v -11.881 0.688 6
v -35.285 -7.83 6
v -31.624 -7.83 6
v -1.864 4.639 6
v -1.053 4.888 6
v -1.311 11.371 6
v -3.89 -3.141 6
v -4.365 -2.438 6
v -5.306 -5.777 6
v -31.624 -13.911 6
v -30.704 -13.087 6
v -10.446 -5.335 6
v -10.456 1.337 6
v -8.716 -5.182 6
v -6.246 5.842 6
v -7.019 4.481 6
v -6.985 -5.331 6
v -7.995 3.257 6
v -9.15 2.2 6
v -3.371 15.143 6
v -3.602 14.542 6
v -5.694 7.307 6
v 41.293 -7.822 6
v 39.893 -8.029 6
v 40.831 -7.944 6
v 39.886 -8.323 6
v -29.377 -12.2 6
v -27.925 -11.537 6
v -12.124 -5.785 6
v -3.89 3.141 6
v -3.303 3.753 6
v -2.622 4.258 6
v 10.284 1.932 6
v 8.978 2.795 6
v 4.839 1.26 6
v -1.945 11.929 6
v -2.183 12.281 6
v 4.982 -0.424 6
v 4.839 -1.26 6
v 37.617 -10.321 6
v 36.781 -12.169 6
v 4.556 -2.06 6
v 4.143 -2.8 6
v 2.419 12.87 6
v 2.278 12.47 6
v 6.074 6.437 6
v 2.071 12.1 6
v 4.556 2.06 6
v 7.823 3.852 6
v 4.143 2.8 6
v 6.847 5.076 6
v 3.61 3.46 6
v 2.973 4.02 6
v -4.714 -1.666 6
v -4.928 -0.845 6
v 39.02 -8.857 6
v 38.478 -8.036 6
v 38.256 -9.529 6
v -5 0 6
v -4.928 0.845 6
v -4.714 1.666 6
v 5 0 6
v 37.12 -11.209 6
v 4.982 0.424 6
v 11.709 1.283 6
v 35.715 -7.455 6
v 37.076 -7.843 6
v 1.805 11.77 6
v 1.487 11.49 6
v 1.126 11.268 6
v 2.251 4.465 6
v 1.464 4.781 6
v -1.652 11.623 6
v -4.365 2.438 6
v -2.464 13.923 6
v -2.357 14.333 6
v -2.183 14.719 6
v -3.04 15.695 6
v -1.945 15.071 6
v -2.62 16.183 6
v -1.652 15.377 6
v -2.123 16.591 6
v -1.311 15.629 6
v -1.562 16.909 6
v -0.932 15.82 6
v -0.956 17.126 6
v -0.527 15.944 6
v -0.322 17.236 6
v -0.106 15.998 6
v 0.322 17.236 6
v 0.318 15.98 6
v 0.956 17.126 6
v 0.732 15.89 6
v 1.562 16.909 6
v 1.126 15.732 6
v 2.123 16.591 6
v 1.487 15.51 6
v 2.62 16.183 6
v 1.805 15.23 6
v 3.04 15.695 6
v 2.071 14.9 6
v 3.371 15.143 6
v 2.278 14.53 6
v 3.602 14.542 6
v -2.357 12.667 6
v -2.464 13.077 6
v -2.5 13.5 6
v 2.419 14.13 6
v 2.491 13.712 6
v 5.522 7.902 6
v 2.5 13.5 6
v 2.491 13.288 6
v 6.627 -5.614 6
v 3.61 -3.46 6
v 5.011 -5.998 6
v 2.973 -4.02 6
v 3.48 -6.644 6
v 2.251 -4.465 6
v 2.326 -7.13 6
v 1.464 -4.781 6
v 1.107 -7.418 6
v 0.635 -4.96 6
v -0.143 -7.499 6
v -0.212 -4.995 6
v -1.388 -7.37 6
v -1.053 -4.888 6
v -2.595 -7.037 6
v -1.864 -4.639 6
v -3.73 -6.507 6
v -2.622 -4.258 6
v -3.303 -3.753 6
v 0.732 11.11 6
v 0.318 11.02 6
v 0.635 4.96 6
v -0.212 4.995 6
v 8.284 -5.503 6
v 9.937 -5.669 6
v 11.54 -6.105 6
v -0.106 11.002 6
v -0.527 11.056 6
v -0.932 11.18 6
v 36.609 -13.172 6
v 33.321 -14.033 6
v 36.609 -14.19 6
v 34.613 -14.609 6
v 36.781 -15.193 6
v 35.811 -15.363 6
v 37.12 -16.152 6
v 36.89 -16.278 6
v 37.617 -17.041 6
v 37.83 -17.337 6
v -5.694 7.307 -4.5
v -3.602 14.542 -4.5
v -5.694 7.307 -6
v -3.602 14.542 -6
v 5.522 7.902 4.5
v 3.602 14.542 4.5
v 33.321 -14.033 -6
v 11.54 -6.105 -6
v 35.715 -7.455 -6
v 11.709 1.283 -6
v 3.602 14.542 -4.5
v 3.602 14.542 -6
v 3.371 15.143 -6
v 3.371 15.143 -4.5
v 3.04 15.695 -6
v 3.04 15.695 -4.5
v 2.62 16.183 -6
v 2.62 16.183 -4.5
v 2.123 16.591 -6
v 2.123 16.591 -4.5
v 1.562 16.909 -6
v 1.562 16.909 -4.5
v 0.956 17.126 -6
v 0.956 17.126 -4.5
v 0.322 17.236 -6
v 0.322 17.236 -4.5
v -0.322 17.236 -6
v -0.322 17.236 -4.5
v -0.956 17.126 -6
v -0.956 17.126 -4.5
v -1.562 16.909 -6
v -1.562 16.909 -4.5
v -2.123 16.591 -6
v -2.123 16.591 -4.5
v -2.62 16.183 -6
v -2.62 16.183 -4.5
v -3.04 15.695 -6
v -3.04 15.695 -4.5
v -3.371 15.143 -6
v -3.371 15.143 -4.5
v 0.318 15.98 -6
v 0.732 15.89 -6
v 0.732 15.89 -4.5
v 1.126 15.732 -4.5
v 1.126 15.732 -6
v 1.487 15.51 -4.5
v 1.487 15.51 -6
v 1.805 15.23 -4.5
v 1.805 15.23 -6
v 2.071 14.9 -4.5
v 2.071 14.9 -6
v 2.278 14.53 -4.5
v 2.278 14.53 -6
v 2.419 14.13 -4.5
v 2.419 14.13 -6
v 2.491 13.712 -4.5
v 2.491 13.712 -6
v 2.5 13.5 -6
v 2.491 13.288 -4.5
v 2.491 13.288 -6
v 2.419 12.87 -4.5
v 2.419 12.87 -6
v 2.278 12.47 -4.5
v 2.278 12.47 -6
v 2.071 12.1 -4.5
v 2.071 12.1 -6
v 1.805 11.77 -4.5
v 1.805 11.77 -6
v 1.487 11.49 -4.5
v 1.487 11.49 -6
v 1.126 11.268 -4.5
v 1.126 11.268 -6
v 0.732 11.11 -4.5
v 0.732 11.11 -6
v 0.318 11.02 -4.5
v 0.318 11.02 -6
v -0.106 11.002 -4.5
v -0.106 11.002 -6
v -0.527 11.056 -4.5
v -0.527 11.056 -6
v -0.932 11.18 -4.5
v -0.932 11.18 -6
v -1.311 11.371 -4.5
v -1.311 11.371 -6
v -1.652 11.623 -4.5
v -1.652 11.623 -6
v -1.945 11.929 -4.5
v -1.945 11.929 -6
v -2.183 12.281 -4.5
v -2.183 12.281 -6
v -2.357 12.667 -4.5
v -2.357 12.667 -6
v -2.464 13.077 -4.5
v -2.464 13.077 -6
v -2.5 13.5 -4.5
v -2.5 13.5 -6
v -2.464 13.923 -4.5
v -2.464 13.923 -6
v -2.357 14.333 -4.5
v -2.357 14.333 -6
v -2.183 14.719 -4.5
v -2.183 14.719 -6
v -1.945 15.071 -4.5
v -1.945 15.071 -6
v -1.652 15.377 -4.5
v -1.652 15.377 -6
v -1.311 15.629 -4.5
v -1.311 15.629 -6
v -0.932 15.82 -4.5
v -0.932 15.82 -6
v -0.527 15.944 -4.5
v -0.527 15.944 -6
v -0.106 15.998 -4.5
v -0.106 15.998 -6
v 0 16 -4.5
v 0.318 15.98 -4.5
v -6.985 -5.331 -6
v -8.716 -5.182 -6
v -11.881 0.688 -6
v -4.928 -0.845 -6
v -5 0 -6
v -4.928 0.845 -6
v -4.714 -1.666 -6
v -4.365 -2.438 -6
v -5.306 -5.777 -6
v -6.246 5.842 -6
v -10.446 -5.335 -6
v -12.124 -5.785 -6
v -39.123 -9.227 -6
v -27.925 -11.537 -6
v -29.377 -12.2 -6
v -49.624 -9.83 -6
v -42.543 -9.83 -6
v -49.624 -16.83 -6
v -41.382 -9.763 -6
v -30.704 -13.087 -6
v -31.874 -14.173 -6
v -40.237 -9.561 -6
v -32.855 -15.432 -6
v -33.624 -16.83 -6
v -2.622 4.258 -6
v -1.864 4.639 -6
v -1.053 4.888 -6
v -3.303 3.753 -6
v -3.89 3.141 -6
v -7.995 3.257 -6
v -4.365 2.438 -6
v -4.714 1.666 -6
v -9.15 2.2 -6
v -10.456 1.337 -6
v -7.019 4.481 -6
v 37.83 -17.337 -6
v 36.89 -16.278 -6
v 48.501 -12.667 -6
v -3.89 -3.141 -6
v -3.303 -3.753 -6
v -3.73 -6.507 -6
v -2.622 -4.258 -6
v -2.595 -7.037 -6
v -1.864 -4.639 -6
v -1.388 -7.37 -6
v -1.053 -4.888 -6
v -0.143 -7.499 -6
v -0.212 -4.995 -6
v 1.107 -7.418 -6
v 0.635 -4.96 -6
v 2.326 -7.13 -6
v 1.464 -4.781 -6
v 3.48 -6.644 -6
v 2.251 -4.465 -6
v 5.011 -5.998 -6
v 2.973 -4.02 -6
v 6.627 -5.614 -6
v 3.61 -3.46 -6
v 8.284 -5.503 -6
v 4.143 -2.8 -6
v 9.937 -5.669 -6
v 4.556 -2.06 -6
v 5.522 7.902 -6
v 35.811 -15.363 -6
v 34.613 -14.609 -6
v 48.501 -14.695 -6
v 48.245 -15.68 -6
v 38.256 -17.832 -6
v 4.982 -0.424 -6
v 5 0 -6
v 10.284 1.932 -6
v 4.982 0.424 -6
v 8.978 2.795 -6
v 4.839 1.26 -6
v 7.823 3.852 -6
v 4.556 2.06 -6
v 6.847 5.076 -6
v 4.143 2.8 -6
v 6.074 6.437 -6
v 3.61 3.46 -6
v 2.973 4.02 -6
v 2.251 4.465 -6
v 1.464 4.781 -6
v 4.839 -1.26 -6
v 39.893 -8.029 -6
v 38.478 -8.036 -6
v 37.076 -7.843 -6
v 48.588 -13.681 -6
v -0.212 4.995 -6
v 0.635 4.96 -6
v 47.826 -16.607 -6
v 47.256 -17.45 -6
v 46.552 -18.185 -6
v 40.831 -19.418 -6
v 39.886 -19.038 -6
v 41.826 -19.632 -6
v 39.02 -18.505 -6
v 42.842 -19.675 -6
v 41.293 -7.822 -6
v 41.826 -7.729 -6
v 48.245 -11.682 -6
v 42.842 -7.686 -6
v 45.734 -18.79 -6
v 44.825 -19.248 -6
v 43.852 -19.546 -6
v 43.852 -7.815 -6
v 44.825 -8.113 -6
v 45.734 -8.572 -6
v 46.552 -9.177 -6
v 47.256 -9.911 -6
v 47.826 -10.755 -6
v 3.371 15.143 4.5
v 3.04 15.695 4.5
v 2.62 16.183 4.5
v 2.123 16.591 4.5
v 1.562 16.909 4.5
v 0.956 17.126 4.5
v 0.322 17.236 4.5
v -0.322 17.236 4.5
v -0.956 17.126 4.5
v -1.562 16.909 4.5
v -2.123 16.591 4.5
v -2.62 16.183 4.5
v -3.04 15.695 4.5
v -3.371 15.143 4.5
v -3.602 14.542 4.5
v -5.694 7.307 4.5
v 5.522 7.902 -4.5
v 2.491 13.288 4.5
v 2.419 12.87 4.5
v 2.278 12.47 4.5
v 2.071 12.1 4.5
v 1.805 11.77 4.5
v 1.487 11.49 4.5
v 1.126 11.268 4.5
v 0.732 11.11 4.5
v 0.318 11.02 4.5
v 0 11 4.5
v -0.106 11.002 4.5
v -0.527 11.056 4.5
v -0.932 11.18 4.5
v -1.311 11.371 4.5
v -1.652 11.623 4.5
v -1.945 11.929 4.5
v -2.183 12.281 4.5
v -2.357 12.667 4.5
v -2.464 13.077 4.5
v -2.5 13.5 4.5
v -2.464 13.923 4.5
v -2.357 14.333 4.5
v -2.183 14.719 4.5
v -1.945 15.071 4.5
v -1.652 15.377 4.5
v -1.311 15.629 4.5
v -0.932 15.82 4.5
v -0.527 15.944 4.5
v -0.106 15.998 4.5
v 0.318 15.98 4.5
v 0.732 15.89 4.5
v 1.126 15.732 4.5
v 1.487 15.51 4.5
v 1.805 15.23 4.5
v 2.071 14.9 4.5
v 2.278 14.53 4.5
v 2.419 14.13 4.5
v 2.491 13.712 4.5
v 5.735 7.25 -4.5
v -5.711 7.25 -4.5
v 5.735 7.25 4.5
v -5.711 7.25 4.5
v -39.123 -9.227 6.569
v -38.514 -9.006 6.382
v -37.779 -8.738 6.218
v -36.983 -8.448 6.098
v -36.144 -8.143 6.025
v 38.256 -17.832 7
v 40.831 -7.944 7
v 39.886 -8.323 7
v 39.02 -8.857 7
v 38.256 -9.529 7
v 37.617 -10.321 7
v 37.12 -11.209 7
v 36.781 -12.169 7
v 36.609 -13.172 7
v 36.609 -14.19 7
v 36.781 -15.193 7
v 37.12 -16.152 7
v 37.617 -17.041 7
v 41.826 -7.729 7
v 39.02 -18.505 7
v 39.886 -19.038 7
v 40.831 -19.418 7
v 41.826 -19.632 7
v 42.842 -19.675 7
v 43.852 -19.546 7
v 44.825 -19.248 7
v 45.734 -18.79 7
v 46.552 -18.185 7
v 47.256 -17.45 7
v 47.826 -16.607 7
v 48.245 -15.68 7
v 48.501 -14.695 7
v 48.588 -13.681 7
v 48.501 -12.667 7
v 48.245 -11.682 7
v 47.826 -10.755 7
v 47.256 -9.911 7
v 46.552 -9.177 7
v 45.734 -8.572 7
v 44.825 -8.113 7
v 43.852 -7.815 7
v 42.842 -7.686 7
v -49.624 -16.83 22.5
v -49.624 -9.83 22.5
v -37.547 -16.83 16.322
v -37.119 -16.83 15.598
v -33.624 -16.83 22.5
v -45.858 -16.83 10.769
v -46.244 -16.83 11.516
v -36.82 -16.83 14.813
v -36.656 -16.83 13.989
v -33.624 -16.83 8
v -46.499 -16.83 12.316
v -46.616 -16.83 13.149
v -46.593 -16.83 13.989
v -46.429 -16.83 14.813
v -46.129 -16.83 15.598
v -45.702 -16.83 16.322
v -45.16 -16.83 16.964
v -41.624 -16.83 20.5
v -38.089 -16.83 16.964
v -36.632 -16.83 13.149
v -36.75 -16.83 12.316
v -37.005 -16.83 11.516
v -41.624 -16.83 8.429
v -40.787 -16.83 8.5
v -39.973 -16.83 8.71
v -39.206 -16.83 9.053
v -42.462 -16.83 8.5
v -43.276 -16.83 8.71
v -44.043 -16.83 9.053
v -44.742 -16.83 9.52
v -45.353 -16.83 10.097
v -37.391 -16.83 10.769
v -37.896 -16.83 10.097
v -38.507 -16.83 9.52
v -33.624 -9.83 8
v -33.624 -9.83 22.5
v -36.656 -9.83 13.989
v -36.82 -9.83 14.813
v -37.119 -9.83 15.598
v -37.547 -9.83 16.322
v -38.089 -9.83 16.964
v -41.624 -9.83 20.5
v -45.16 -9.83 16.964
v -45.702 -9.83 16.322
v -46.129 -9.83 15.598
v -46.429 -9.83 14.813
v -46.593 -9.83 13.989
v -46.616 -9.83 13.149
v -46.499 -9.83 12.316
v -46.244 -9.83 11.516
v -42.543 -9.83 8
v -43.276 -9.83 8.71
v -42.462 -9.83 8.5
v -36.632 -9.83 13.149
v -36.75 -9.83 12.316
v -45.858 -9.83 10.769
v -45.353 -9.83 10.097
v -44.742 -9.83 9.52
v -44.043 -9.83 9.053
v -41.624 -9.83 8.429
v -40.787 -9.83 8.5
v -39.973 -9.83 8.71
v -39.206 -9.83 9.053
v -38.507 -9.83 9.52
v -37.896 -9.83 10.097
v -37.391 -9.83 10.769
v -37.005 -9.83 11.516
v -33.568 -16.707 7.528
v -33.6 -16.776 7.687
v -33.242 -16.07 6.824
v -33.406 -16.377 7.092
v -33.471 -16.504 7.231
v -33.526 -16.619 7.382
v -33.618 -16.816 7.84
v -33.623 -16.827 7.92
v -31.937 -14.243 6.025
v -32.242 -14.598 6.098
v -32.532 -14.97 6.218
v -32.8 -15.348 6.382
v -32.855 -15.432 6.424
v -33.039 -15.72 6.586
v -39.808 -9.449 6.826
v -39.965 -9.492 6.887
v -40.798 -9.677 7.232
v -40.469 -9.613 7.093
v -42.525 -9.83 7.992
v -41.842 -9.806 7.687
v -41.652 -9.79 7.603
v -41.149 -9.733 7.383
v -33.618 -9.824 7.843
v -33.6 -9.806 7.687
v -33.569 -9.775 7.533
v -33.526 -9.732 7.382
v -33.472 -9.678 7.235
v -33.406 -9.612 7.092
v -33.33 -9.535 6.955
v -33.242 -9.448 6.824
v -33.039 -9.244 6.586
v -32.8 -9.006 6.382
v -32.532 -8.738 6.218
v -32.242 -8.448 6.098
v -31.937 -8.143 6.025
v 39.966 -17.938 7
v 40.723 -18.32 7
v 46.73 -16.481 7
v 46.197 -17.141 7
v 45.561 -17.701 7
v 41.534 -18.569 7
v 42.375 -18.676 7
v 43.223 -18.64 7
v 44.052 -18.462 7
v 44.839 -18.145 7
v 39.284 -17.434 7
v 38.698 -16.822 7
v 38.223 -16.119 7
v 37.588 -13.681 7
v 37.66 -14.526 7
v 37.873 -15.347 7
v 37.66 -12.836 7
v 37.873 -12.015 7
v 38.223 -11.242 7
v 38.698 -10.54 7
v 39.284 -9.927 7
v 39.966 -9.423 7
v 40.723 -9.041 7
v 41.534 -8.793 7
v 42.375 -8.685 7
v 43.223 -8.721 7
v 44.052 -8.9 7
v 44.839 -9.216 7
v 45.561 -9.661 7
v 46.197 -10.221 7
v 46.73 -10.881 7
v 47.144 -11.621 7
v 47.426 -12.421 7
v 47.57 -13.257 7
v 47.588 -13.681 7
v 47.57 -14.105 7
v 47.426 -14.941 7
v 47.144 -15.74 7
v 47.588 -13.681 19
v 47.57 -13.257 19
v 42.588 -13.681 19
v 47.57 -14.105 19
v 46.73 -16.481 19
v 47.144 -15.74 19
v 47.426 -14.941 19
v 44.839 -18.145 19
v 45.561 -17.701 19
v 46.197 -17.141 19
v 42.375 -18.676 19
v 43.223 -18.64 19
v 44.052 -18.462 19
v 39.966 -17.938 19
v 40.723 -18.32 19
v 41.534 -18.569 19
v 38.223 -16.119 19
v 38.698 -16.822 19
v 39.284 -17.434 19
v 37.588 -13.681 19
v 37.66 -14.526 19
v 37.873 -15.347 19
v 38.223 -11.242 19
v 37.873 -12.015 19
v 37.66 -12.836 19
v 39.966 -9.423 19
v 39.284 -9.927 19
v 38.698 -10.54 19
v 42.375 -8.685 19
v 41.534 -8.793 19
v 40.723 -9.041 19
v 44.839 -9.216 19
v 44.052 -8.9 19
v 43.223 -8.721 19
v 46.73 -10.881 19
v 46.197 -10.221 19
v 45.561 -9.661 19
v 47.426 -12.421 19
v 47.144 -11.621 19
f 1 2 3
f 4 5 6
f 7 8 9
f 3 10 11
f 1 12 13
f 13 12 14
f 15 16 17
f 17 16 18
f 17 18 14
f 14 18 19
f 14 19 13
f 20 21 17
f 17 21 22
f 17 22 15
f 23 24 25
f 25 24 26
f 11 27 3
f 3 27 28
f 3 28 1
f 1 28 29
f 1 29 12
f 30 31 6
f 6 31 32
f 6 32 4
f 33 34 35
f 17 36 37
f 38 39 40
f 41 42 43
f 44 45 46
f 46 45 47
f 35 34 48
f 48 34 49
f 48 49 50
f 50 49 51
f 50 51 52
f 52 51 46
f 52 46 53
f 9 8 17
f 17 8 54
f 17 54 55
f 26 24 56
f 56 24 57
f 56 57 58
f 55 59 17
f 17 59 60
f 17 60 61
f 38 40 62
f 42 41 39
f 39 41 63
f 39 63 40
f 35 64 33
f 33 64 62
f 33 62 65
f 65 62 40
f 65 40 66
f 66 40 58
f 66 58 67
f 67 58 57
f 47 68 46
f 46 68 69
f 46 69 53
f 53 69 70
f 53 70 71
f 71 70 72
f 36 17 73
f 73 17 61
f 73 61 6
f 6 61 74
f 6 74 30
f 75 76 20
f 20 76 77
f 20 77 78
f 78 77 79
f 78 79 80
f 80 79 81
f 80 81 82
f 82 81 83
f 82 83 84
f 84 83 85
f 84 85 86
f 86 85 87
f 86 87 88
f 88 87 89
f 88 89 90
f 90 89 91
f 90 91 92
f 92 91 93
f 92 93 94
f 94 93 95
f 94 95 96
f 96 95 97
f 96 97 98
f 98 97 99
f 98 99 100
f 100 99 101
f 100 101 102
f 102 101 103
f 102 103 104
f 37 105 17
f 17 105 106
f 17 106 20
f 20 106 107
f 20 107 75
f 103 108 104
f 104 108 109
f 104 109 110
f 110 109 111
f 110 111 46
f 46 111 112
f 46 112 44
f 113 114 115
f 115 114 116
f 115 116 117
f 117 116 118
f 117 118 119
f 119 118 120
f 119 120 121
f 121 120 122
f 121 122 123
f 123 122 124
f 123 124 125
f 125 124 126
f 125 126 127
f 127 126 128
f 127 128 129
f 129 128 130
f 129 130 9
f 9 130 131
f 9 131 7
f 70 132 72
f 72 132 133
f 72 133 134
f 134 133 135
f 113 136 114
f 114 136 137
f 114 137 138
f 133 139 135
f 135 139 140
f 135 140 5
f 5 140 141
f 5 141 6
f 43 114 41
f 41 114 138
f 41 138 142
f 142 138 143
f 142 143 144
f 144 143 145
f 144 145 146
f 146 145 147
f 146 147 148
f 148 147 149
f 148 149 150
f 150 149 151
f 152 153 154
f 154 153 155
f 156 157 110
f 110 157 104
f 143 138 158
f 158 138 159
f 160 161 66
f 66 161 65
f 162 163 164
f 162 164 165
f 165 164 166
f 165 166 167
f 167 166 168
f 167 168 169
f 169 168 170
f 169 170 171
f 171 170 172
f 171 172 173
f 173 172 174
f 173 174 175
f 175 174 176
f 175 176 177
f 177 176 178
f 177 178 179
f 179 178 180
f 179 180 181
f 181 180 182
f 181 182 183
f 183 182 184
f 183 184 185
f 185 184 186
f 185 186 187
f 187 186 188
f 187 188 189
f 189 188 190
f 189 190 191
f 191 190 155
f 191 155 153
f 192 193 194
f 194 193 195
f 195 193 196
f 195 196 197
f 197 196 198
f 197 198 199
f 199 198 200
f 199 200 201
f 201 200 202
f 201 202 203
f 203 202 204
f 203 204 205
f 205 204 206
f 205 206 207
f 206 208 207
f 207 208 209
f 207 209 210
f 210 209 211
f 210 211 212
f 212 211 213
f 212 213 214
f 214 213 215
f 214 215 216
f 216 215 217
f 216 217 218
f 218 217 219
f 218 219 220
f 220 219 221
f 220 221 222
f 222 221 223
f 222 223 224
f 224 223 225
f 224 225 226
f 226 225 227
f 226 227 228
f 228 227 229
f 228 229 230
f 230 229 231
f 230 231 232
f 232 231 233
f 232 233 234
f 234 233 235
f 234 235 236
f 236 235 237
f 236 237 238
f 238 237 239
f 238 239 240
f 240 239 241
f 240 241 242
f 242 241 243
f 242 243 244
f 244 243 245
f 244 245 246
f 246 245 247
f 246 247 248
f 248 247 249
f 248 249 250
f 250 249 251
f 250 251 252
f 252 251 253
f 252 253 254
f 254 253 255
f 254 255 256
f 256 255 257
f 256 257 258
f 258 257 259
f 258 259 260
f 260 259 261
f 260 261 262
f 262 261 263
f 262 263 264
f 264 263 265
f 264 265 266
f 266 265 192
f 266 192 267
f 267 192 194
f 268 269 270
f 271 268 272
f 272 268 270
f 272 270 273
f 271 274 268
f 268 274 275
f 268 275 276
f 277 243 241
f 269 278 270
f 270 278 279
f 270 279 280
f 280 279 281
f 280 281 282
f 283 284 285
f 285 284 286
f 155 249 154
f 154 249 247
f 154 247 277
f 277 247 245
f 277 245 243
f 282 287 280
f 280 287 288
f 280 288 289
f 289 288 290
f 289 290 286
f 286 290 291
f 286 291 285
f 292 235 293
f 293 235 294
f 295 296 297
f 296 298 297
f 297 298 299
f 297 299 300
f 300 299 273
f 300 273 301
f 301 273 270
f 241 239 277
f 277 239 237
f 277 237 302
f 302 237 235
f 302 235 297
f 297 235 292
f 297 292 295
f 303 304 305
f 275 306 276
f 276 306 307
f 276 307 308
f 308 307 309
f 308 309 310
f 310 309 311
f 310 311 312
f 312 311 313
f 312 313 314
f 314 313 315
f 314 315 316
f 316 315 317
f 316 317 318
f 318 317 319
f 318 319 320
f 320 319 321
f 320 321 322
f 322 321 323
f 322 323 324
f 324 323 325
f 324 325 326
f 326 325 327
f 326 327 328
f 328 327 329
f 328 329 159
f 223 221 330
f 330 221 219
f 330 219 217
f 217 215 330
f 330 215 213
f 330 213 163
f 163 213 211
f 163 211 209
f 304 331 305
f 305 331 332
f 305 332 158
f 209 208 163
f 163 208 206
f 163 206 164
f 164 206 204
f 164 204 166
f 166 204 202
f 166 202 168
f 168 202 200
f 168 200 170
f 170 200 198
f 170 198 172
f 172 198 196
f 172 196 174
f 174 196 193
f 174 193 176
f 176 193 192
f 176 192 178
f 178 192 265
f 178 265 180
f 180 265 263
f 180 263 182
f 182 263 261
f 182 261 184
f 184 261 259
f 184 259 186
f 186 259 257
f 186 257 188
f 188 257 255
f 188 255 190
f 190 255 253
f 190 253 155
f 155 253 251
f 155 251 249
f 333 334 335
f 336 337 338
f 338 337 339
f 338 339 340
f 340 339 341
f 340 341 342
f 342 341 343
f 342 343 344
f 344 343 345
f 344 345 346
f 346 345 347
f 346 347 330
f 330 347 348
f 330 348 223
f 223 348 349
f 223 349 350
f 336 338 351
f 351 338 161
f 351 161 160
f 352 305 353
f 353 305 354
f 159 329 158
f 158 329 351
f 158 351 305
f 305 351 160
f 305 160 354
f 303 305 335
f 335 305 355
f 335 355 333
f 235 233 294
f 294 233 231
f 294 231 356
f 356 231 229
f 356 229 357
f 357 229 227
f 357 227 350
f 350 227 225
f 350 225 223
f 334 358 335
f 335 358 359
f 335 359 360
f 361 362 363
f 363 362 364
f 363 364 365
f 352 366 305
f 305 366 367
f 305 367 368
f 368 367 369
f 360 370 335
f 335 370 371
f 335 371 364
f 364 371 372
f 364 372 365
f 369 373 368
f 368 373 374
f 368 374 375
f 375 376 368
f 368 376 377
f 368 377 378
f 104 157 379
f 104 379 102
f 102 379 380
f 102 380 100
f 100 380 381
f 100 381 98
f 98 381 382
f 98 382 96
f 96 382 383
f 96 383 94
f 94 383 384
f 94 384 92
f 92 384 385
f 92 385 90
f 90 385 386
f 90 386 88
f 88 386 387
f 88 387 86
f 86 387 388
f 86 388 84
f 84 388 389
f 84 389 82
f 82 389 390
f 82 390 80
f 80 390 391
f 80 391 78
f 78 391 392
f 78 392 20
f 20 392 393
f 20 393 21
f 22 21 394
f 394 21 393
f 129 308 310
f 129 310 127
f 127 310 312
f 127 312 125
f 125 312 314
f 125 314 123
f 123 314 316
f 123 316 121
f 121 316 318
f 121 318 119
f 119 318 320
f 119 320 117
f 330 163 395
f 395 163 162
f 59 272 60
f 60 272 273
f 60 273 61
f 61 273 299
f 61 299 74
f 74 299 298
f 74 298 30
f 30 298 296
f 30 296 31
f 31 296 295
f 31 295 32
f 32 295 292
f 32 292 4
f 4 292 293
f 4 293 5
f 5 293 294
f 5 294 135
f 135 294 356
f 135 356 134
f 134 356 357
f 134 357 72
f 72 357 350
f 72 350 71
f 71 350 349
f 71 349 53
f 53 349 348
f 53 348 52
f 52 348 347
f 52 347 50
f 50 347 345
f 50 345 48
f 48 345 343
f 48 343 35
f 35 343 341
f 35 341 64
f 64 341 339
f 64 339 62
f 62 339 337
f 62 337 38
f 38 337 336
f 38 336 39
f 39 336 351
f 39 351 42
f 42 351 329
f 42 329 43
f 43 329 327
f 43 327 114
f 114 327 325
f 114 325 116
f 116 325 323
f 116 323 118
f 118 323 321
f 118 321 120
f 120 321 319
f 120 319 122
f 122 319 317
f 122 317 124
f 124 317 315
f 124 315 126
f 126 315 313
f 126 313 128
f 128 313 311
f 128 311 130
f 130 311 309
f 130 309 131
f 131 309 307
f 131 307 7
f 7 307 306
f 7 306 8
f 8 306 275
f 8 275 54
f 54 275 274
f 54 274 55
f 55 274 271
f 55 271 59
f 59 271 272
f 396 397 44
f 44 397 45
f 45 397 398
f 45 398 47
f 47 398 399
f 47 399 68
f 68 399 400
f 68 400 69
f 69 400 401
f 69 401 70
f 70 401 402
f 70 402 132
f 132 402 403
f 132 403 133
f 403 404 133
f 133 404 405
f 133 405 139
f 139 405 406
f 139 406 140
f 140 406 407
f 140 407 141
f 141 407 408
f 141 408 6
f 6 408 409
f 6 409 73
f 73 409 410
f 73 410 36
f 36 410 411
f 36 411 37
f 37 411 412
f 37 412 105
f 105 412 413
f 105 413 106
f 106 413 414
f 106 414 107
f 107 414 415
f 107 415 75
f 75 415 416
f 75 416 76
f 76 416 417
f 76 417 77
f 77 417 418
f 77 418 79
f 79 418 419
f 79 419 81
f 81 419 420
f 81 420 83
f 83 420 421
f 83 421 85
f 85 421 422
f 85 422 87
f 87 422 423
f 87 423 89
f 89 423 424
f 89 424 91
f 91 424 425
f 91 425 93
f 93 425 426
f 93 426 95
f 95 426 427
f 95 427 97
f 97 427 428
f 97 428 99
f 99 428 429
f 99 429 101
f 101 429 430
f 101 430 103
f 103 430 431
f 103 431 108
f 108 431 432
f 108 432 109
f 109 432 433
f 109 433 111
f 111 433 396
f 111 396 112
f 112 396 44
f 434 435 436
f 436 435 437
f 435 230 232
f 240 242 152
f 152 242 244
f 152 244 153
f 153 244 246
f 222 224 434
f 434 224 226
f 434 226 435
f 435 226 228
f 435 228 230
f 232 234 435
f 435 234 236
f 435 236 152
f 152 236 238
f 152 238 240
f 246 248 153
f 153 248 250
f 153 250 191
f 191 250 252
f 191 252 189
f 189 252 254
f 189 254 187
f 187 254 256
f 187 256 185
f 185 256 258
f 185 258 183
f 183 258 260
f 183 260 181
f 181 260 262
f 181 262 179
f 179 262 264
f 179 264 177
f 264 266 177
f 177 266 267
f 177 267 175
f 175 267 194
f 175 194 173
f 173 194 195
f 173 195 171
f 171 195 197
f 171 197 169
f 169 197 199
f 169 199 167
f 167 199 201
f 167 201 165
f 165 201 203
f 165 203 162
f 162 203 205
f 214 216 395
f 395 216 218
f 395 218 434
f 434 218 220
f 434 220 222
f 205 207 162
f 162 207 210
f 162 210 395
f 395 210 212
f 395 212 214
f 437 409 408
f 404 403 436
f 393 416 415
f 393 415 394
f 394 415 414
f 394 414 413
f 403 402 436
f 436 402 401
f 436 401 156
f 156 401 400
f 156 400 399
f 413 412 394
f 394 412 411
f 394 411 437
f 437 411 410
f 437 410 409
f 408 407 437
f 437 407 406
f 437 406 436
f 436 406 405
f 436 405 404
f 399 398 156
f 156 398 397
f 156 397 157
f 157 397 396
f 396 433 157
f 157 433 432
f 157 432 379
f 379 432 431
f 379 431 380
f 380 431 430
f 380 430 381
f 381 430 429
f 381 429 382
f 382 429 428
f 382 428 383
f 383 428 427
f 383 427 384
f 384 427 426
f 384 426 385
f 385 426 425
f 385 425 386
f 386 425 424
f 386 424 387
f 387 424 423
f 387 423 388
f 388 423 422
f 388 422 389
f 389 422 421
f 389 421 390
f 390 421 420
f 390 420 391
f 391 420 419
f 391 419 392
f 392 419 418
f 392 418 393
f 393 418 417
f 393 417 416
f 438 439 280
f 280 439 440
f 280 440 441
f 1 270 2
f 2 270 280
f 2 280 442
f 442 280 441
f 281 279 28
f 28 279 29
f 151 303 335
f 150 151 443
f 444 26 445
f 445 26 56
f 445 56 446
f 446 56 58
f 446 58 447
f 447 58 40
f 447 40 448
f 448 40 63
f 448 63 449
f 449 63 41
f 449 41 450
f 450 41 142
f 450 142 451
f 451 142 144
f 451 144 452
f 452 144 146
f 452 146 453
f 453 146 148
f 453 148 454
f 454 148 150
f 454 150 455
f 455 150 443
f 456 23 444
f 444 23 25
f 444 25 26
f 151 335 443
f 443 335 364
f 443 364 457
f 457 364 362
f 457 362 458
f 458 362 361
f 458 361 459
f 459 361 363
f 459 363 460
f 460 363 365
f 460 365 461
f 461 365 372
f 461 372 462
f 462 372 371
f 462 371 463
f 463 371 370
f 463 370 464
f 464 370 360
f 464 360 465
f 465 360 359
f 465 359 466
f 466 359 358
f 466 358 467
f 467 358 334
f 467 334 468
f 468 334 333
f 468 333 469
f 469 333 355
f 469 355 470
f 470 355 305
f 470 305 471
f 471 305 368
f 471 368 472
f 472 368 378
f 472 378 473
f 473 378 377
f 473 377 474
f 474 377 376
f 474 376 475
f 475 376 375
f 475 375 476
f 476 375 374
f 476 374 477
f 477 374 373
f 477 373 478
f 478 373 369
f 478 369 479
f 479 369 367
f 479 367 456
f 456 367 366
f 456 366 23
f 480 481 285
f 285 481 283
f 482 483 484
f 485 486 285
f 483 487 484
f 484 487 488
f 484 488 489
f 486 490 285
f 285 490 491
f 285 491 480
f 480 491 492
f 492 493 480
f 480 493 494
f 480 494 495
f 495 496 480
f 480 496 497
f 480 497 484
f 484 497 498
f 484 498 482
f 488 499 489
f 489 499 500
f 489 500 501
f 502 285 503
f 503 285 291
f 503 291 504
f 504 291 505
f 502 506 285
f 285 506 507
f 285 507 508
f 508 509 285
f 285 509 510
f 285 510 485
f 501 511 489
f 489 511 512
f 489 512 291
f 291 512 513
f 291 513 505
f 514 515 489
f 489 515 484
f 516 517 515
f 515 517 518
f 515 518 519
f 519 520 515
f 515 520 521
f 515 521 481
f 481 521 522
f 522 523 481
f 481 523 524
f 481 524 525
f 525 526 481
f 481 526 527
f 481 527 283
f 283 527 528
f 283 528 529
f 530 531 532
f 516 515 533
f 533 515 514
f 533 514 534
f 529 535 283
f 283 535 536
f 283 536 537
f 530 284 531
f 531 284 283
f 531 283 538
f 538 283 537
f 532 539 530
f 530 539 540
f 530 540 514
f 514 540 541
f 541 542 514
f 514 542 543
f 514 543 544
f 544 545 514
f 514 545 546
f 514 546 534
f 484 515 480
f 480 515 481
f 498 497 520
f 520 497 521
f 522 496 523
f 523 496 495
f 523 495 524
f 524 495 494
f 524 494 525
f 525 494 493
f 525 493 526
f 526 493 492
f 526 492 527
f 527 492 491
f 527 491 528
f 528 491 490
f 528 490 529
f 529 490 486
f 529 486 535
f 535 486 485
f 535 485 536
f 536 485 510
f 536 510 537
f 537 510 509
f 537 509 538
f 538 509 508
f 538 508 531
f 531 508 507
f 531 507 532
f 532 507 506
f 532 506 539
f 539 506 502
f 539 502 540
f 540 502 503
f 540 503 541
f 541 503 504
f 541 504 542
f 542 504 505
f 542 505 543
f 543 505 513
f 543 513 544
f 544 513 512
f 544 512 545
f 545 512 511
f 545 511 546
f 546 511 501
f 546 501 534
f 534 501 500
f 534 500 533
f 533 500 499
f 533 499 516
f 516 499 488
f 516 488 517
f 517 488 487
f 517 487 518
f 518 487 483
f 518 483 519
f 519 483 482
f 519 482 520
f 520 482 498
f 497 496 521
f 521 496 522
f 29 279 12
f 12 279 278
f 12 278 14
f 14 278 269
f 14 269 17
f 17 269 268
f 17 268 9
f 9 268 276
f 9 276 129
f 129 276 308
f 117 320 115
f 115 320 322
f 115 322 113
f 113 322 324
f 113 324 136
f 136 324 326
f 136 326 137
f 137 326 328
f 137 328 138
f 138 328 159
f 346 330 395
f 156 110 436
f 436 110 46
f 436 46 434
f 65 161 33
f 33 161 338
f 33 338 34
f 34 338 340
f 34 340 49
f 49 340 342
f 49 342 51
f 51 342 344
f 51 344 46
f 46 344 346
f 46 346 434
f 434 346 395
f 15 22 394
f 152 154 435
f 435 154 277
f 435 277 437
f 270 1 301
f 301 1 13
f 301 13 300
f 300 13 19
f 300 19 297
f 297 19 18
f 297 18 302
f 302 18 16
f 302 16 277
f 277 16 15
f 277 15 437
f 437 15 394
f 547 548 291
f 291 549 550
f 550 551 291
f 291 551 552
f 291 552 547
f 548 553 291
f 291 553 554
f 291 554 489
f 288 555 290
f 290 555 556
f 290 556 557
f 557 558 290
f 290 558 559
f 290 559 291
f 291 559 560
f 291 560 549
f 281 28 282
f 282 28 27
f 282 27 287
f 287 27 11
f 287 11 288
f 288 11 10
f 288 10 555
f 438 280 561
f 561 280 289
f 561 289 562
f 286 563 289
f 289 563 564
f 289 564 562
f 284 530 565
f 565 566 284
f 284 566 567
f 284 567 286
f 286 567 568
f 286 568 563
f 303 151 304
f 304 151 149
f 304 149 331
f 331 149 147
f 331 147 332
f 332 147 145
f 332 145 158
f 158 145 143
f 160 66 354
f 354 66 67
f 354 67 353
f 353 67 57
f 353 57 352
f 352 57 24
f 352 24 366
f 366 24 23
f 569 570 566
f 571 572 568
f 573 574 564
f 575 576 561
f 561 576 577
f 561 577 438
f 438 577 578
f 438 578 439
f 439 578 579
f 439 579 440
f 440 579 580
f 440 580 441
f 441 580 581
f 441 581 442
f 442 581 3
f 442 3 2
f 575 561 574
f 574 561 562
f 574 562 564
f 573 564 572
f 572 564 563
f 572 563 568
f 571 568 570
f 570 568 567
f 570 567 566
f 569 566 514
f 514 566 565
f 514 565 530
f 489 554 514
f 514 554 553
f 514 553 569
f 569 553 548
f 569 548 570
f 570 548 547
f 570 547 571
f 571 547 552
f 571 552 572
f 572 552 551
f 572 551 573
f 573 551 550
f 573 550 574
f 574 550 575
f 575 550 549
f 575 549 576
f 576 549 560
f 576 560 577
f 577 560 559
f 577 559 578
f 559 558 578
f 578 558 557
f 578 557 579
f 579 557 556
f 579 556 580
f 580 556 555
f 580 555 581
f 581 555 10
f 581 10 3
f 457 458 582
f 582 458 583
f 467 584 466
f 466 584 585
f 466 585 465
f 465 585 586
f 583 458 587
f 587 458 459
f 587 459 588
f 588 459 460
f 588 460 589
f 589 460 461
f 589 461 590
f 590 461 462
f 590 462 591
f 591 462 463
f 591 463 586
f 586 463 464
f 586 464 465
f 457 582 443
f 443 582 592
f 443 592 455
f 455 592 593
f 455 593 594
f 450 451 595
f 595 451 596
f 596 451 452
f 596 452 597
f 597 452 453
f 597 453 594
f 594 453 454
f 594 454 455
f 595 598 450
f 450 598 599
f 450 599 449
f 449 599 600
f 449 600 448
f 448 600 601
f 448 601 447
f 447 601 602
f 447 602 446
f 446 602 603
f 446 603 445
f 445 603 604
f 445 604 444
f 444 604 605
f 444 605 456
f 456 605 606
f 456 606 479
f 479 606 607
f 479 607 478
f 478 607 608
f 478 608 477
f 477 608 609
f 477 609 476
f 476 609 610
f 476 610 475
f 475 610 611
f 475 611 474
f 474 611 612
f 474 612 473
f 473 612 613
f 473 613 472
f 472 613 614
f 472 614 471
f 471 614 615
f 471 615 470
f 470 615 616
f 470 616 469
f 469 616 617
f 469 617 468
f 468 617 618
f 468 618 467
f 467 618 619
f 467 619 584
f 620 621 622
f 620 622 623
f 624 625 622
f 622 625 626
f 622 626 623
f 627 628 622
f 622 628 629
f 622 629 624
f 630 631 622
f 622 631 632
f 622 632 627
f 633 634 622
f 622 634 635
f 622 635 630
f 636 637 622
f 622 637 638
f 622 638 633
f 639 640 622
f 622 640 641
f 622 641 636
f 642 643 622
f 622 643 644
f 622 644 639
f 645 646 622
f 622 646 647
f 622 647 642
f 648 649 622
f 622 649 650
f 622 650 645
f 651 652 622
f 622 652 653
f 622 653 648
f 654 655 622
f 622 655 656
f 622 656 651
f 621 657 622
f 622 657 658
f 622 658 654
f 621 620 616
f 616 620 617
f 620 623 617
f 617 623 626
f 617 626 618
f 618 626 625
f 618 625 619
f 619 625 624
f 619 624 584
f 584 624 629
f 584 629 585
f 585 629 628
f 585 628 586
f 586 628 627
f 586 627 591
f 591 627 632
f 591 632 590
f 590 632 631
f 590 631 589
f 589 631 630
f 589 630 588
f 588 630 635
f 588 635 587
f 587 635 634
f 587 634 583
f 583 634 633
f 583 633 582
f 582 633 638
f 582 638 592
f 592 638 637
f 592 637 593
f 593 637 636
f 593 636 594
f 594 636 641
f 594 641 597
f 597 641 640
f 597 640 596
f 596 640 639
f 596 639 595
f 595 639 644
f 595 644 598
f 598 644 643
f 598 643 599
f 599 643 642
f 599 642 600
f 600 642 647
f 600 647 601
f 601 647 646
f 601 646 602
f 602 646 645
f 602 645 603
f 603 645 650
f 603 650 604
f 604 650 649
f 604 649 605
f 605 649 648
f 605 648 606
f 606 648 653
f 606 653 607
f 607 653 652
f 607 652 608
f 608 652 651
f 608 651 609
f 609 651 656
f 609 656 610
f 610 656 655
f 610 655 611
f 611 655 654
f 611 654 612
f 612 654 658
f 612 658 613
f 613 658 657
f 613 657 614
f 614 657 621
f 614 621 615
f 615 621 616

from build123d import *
from build123d.topology import SkipClean

# Parameters (mm, degrees)
CROQUIS1_R                 = 5
CROQUIS1_R_2               = 2.5
SALIENTE_EXTRUIR1_DEPTH    = 6
CORTAR_EXTRUIR1_DEPTH      = 20.743669872
CORTAR_EXTRUIR1_DEPTH_BACK = 20.743669872
CROQUIS3_W                 = 9
CROQUIS3_H                 = 14.204802578
CROQUIS4_W                 = 12
CROQUIS4_H                 = 6
SALIENTE_EXTRUIR2_DEPTH    = 38
CROQUIS8_W                 = 12
CROQUIS8_H                 = 7
SALIENTE_EXTRUIR5_DEPTH    = 39.5
CROQUIS9_R                 = 5
SALIENTE_EXTRUIR6_DEPTH    = 19
CROQUIS11_R                = 6
SALIENTE_EXTRUIR7_DEPTH    = 6
CROQUIS22_W                = 16
CROQUIS22_H                = 7
SALIENTE_EXTRUIR12_DEPTH   = 28.5
CORTAR_EXTRUIR3_DEPTH      = 17
REDONDEO1_R                = 10
REDONDEO2_R                = 10
REDONDEO3_R                = 2
CROQUIS25_R                = 6
SALIENTE_EXTRUIR13_DEPTH   = 1


with BuildPart() as part:
    # Croquis1 → Saliente-Extruir1 (new, symmetric)
    with BuildSketch(Plane.XY):
        with BuildLine():
            Line((-3.602420097, 14.541666667), (-7.204840194, 2.083333333))
            ThreePointArc((-7.204840194, 2.083333333), (0, -7.5), (7.204840194, 2.083333333))
            Line((7.204840194, 2.083333333), (3.602420097, 14.541666667))
            ThreePointArc((3.602420097, 14.541666667), (0, 17.25), (-3.602420097, 14.541666667))
        make_face()
        Circle(CROQUIS1_R, mode=Mode.SUBTRACT)
        with Locations((0, 13.5)):
            Circle(CROQUIS1_R_2, mode=Mode.SUBTRACT)
    extrude(amount=SALIENTE_EXTRUIR1_DEPTH, both=True)

    # Croquis3 → Cortar-Extruir1 (cut, two sides: drawn at the far end of the back side and taken through both)
    with BuildSketch(Plane(origin=(0, 0, 0), x_dir=(0, 0, -1), z_dir=(1, 0, 0)).offset(-CORTAR_EXTRUIR1_DEPTH_BACK)):
        with Locations((0, 14.352401289)):
            Rectangle(CROQUIS3_W, CROQUIS3_H)
    extrude(amount=CORTAR_EXTRUIR1_DEPTH + CORTAR_EXTRUIR1_DEPTH_BACK, mode=Mode.SUBTRACT)

    # Croquis4 → Saliente-Extruir2 (add)
    with BuildSketch(Plane(origin=(-41.624334392, -13.330167568, 0), x_dir=(0, 0, 1), z_dir=(-0.9396926207859082, -0.3420201433256695, 0))):
        Rectangle(CROQUIS4_W, CROQUIS4_H)
    extrude(amount=-SALIENTE_EXTRUIR2_DEPTH)

    # Croquis8 → Saliente-Extruir5 (add)
    with BuildSketch(Plane(origin=(42.587704831, -13.680805733, 0), x_dir=(0, 0, -1), z_dir=(0.9396926207859082, -0.34202014332566943, 0))):
        Rectangle(CROQUIS8_W, CROQUIS8_H)
    extrude(amount=-SALIENTE_EXTRUIR5_DEPTH)

    # Croquis9 → Saliente-Extruir6 (add)
    with BuildSketch(Plane.XY):
        with Locations(Location((42.587704831, -13.680805733, 0), (0, 0, 204.427004001))):
            Circle(CROQUIS9_R)
    extrude(amount=SALIENTE_EXTRUIR6_DEPTH)

    # Croquis11 → Saliente-Extruir7 (add, symmetric)
    with BuildSketch(Plane(origin=(0, 0, 0), x_dir=(-1, 0, 0), z_dir=(0, 0, -1))):
        with Locations((-42.587704831, -13.680805733)):
            Circle(CROQUIS11_R)
    extrude(amount=SALIENTE_EXTRUIR7_DEPTH, both=True)

    # Croquis22 → Saliente-Extruir12 (add)
    with BuildSketch(Plane(origin=(0, 0, -6), x_dir=(-1, 0, 0), z_dir=(0, 0, -1))):
        with Locations((41.624334392, -13.330167568)):
            Rectangle(CROQUIS22_W, CROQUIS22_H)
    extrude(amount=-SALIENTE_EXTRUIR12_DEPTH)

    # Croquis24 → Cortar-Extruir3 (cut)
    with BuildSketch(Plane.XZ.offset(16.830167568)):
        with BuildLine():
            Line((-41.624334392, 20.5), (-45.159868298, 16.964466094))
            ThreePointArc((-45.159868298, 16.964466094), (-41.624334392, 8.428932188), (-38.088800486, 16.964466094))
            Line((-38.088800486, 16.964466094), (-41.624334392, 20.5))
        make_face()
    extrude(amount=-CORTAR_EXTRUIR3_DEPTH, mode=Mode.SUBTRACT)

    # Redondeo1
    # the kernel refuses this fillet: 10 mm, written as the material it adds along each edge
    with BuildSketch(Plane(origin=(-6.501507493, -3.739037351, -6), x_dir=(-0.9396926207859082, -0.34202014332566955, 0), z_dir=(0, 0, 1))) as redondeo1_piece_1:
        with BuildLine():
            CenterArc((5.982924808, 10), REDONDEO1_R, 220.175955677, 49.824044323)
            ThreePointArc((-1.657743486, 3.548628981), (-0.593131346, 1.884440714), (0, 0))
            Line((0, 0), (5.982924808, 0))
        make_face()
    extrude(amount=12)
    with BuildSketch(Plane(origin=(6.231868861, -4.172985802, -6), x_dir=(-0.7440842561226181, -0.668085787747689, 0), z_dir=(0, 0, 1))) as redondeo1_piece_2:
        with BuildLine():
            CenterArc((6.16374333, 9.691301404), REDONDEO1_R, 208.080503653, 47.646059692)
            Line((-2.659127557, 4.984184526), (0, 0))
            ThreePointArc((0, 0), (1.849122999, 0.231523947), (3.698245998, 0))
        make_face()
    extrude(amount=12)
    with BuildSketch(Plane(origin=(6.933768131, 3.020788164, 6), x_dir=(0.9396926207859081, -0.34202014332566955, 0), z_dir=(0, 0, -1))) as redondeo1_piece_3_section:
        with BuildLine():
            CenterArc((REDONDEO1_R * 0.508123414429, -REDONDEO1_R), REDONDEO1_R, 90, 53.872379787)
            Line((-REDONDEO1_R * 0.299582345445, -REDONDEO1_R * 0.410414208562), (0, 0))
            Line((0, 0), (REDONDEO1_R * 0.508123414429, 0))
        make_face()
    redondeo1_piece_3 = extrude(amount=12, mode=Mode.PRIVATE)
    redondeo1_piece_3 = split(redondeo1_piece_3, bisect_by=Plane(origin=(7.707131888, 3.605094571, 4.5), z_dir=(0, 0, 1)), keep=Keep.TOP, mode=Mode.PRIVATE)
    redondeo1_piece_3 = split(redondeo1_piece_3, bisect_by=Plane(origin=(7.707131888, 7.25, 5.25), z_dir=(0, -1, 0)), keep=Keep.TOP, mode=Mode.PRIVATE)
    add(redondeo1_piece_3)
    with BuildSketch(Plane(origin=(6.933768131, 3.020788164, 6), x_dir=(0.9396926207859081, -0.34202014332566955, 0), z_dir=(0, 0, -1))) as redondeo1_piece_4_section:
        with BuildLine():
            CenterArc((REDONDEO1_R * 0.508123414429, -REDONDEO1_R), REDONDEO1_R, 90, 53.872379787)
            Line((-REDONDEO1_R * 0.299582345445, -REDONDEO1_R * 0.410414208562), (0, 0))
            Line((0, 0), (REDONDEO1_R * 0.508123414429, 0))
        make_face()
    redondeo1_piece_4 = extrude(amount=12, mode=Mode.PRIVATE)
    redondeo1_piece_4 = split(redondeo1_piece_4, bisect_by=Plane(origin=(5.523987689, 7.556477911, 4.5), z_dir=(0, 0, 1)), keep=Keep.TOP, mode=Mode.PRIVATE)
    redondeo1_piece_4 = split(redondeo1_piece_4, bisect_by=Plane(origin=(5.523987689, 7.25, 5.25), z_dir=(0, 1, 0)), keep=Keep.TOP, mode=Mode.PRIVATE)
    add(redondeo1_piece_4)
    with BuildSketch(Plane(origin=(6.933768131, 3.020788164, 6), x_dir=(0.9396926207859081, -0.34202014332566955, 0), z_dir=(0, 0, -1))) as redondeo1_piece_5_section:
        with BuildLine():
            CenterArc((REDONDEO1_R * 0.508123414429, -REDONDEO1_R), REDONDEO1_R, 90, 53.872379787)
            Line((-REDONDEO1_R * 0.299582345445, -REDONDEO1_R * 0.410414208562), (0, 0))
            Line((0, 0), (REDONDEO1_R * 0.508123414429, 0))
        make_face()
    redondeo1_piece_5 = extrude(amount=12, mode=Mode.PRIVATE)
    redondeo1_piece_5 = split(redondeo1_piece_5, bisect_by=Plane(origin=(7.707131888, 3.605094571, 4.5), z_dir=(0, 0, -1)), keep=Keep.TOP, mode=Mode.PRIVATE)
    redondeo1_piece_5 = split(redondeo1_piece_5, bisect_by=Plane(origin=(7.707131888, 7.25, 0), z_dir=(0, -1, 0)), keep=Keep.TOP, mode=Mode.PRIVATE)
    redondeo1_piece_5 = split(redondeo1_piece_5, bisect_by=Plane(origin=(7.707131888, 3.605094571, -4.5), z_dir=(0, 0, 1)), keep=Keep.TOP, mode=Mode.PRIVATE)
    add(redondeo1_piece_5)
    with BuildSketch(Plane(origin=(6.933768131, 3.020788164, 6), x_dir=(0.9396926207859081, -0.34202014332566955, 0), z_dir=(0, 0, -1))) as redondeo1_piece_6_section:
        with BuildLine():
            CenterArc((REDONDEO1_R * 0.508123414429, -REDONDEO1_R), REDONDEO1_R, 90, 53.872379787)
            Line((-REDONDEO1_R * 0.299582345445, -REDONDEO1_R * 0.410414208562), (0, 0))
            Line((0, 0), (REDONDEO1_R * 0.508123414429, 0))
        make_face()
    redondeo1_piece_6 = extrude(amount=12, mode=Mode.PRIVATE)
    redondeo1_piece_6 = split(redondeo1_piece_6, bisect_by=Plane(origin=(7.707131888, 7.25, -5.25), z_dir=(0, -1, 0)), keep=Keep.TOP, mode=Mode.PRIVATE)
    redondeo1_piece_6 = split(redondeo1_piece_6, bisect_by=Plane(origin=(7.707131888, 3.605094571, -4.5), z_dir=(0, 0, -1)), keep=Keep.TOP, mode=Mode.PRIVATE)
    add(redondeo1_piece_6)
    with BuildSketch(Plane(origin=(6.933768131, 3.020788164, 6), x_dir=(0.9396926207859081, -0.34202014332566955, 0), z_dir=(0, 0, -1))) as redondeo1_piece_7_section:
        with BuildLine():
            CenterArc((REDONDEO1_R * 0.508123414429, -REDONDEO1_R), REDONDEO1_R, 90, 53.872379787)
            Line((-REDONDEO1_R * 0.299582345445, -REDONDEO1_R * 0.410414208562), (0, 0))
            Line((0, 0), (REDONDEO1_R * 0.508123414429, 0))
        make_face()
    redondeo1_piece_7 = extrude(amount=12, mode=Mode.PRIVATE)
    redondeo1_piece_7 = split(redondeo1_piece_7, bisect_by=Plane(origin=(5.523987689, 7.25, -5.25), z_dir=(0, 1, 0)), keep=Keep.TOP, mode=Mode.PRIVATE)
    redondeo1_piece_7 = split(redondeo1_piece_7, bisect_by=Plane(origin=(5.523987689, 7.556477911, -4.5), z_dir=(0, 0, -1)), keep=Keep.TOP, mode=Mode.PRIVATE)
    add(redondeo1_piece_7)
    with BuildSketch(Plane(origin=(-7.105722939, 2.426112846, -6), x_dir=(0.2777777777777774, 0.9606453592105879, 0), z_dir=(0, 0, 1))) as redondeo1_piece_8_section:
        with BuildLine():
            CenterArc((REDONDEO1_R * 0.508123414429, REDONDEO1_R), REDONDEO1_R, 216.127620213, 53.872379787)
            Line((-REDONDEO1_R * 0.299582345445, REDONDEO1_R * 0.410414208562), (0, 0))
            Line((0, 0), (REDONDEO1_R * 0.508123414429, 0))
        make_face()
    redondeo1_piece_8 = extrude(amount=12, mode=Mode.PRIVATE)
    redondeo1_piece_8 = split(redondeo1_piece_8, bisect_by=Plane(origin=(-5.633833438, 7.269141523, -4.5), z_dir=(0, 0, -1)), keep=Keep.TOP, mode=Mode.PRIVATE)
    redondeo1_piece_8 = split(redondeo1_piece_8, bisect_by=Plane(origin=(-5.633833438, 7.25, -5.25), z_dir=(0, 1, 0)), keep=Keep.TOP, mode=Mode.PRIVATE)
    add(redondeo1_piece_8)
    with BuildSketch(Plane(origin=(-7.105722939, 2.426112846, -6), x_dir=(0.2777777777777774, 0.9606453592105879, 0), z_dir=(0, 0, 1))) as redondeo1_piece_9_section:
        with BuildLine():
            CenterArc((REDONDEO1_R * 0.508123414429, REDONDEO1_R), REDONDEO1_R, 216.127620213, 53.872379787)
            Line((-REDONDEO1_R * 0.299582345445, REDONDEO1_R * 0.410414208562), (0, 0))
            Line((0, 0), (REDONDEO1_R * 0.508123414429, 0))
        make_face()
    redondeo1_piece_9 = extrude(amount=12, mode=Mode.PRIVATE)
    redondeo1_piece_9 = split(redondeo1_piece_9, bisect_by=Plane(origin=(-7.830945447, 3.097346967, -4.5), z_dir=(0, 0, -1)), keep=Keep.TOP, mode=Mode.PRIVATE)
    redondeo1_piece_9 = split(redondeo1_piece_9, bisect_by=Plane(origin=(-7.830945447, 7.25, -5.25), z_dir=(0, -1, 0)), keep=Keep.TOP, mode=Mode.PRIVATE)
    add(redondeo1_piece_9)
    with BuildSketch(Plane(origin=(-7.105722939, 2.426112846, -6), x_dir=(0.2777777777777774, 0.9606453592105879, 0), z_dir=(0, 0, 1))) as redondeo1_piece_10_section:
        with BuildLine():
            CenterArc((REDONDEO1_R * 0.508123414429, REDONDEO1_R), REDONDEO1_R, 216.127620213, 53.872379787)
            Line((-REDONDEO1_R * 0.299582345445, REDONDEO1_R * 0.410414208562), (0, 0))
            Line((0, 0), (REDONDEO1_R * 0.508123414429, 0))
        make_face()
    redondeo1_piece_10 = extrude(amount=12, mode=Mode.PRIVATE)
    redondeo1_piece_10 = split(redondeo1_piece_10, bisect_by=Plane(origin=(-7.830945447, 3.097346967, -4.5), z_dir=(0, 0, 1)), keep=Keep.TOP, mode=Mode.PRIVATE)
    redondeo1_piece_10 = split(redondeo1_piece_10, bisect_by=Plane(origin=(-7.830945447, 7.25, 0), z_dir=(0, -1, 0)), keep=Keep.TOP, mode=Mode.PRIVATE)
    redondeo1_piece_10 = split(redondeo1_piece_10, bisect_by=Plane(origin=(-7.830945447, 3.097346967, 4.5), z_dir=(0, 0, -1)), keep=Keep.TOP, mode=Mode.PRIVATE)
    add(redondeo1_piece_10)
    with BuildSketch(Plane(origin=(-7.105722939, 2.426112846, -6), x_dir=(0.2777777777777774, 0.9606453592105879, 0), z_dir=(0, 0, 1))) as redondeo1_piece_11_section:
        with BuildLine():
            CenterArc((REDONDEO1_R * 0.508123414429, REDONDEO1_R), REDONDEO1_R, 216.127620213, 53.872379787)
            Line((-REDONDEO1_R * 0.299582345445, REDONDEO1_R * 0.410414208562), (0, 0))
            Line((0, 0), (REDONDEO1_R * 0.508123414429, 0))
        make_face()
    redondeo1_piece_11 = extrude(amount=12, mode=Mode.PRIVATE)
    redondeo1_piece_11 = split(redondeo1_piece_11, bisect_by=Plane(origin=(-5.633833438, 7.25, 5.25), z_dir=(0, 1, 0)), keep=Keep.TOP, mode=Mode.PRIVATE)
    redondeo1_piece_11 = split(redondeo1_piece_11, bisect_by=Plane(origin=(-5.633833438, 7.269141523, 4.5), z_dir=(0, 0, 1)), keep=Keep.TOP, mode=Mode.PRIVATE)
    add(redondeo1_piece_11)
    with BuildSketch(Plane(origin=(-7.105722939, 2.426112846, -6), x_dir=(0.2777777777777774, 0.9606453592105879, 0), z_dir=(0, 0, 1))) as redondeo1_piece_12_section:
        with BuildLine():
            CenterArc((REDONDEO1_R * 0.508123414429, REDONDEO1_R), REDONDEO1_R, 216.127620213, 53.872379787)
            Line((-REDONDEO1_R * 0.299582345445, REDONDEO1_R * 0.410414208562), (0, 0))
            Line((0, 0), (REDONDEO1_R * 0.508123414429, 0))
        make_face()
    redondeo1_piece_12 = extrude(amount=12, mode=Mode.PRIVATE)
    redondeo1_piece_12 = split(redondeo1_piece_12, bisect_by=Plane(origin=(-7.830945447, 7.25, 5.25), z_dir=(0, -1, 0)), keep=Keep.TOP, mode=Mode.PRIVATE)
    redondeo1_piece_12 = split(redondeo1_piece_12, bisect_by=Plane(origin=(-7.830945447, 3.097346967, 4.5), z_dir=(0, 0, 1)), keep=Keep.TOP, mode=Mode.PRIVATE)
    add(redondeo1_piece_12)

    # Redondeo2
    # the kernel refuses this fillet: 10 mm, written as the material it adds along each edge
    with BuildSketch(Plane(origin=(-33.624334392, -13.610939012, 6), x_dir=(0, -1, 0), z_dir=(0, 0, -1))) as redondeo2_piece_1:
        with BuildLine():
            CenterArc((7.32261171, -9.119333676), REDONDEO2_R, 114.226089014, 45.773910986)
            Line((-2.074314498, -5.699132243), (-2.262253022, -5.630728214))
            Line((-2.262253022, -5.630728214), (-0.187938524, 0.068404029))
            Line((-0.187938524, 0.068404029), (0, 0.2))
            ThreePointArc((0, 0.2), (1.609614278, 0.2), (3.137160894, 0.182386674))
            Line((3.137160894, 0.182386674), (3.219228557, 0))
        make_face()
    extrude(amount=12)
    with BuildSketch(Plane(origin=(-40.779576624, -9.830167568, -6), x_dir=(0.9396926207859088, 0.3420201433256678, 0), z_dir=(0, 0, 1))) as redondeo2_piece_2:
        with BuildLine():
            CenterArc((REDONDEO2_R * 0.176326980708, REDONDEO2_R), REDONDEO2_R, 250, 20)
            Line((-REDONDEO2_R * 0.165693162617, REDONDEO2_R * 0.0603073792141), (-REDONDEO2_R * 0.172533565484, REDONDEO2_R * 0.0415135267984))
            Line((-REDONDEO2_R * 0.172533565484, REDONDEO2_R * 0.0415135267984), (-REDONDEO2_R * 0.00352653961417, -REDONDEO2_R * 0.02))
            Line((-REDONDEO2_R * 0.00352653961417, -REDONDEO2_R * 0.02), (REDONDEO2_R * 0.176326980708, -REDONDEO2_R * 0.02))
            Line((REDONDEO2_R * 0.176326980708, -REDONDEO2_R * 0.02), (REDONDEO2_R * 0.176326980708, 0))
        make_face()
    extrude(amount=12)
    with BuildSketch(Plane(origin=(36.811138969, -15.302929906, 6), x_dir=(-0.9396926207859084, 0.3420201433256687, 0), z_dir=(0, 0, -1))) as redondeo2_piece_3:
        with BuildLine():
            CenterArc((3.714384846, -10), REDONDEO2_R, 90, 32.461744967)
            Line((-1.652978915, -1.5625), (-1.760326191, -1.39375))
            ThreePointArc((-1.760326191, -1.39375), (-0.889157213, -0.714953374), (-0.162446572, 0.116666667))
            Line((-0.162446572, 0.116666667), (0, 0.2))
            Line((0, 0.2), (3.714384846, 0.2))
            Line((3.714384846, 0.2), (3.714384846, 0))
        make_face()
    extrude(amount=12)
    with BuildSketch(Plane(origin=(39.205279972, -8.725081561, 6), x_dir=(0.917836362849066, 0.39695895383779634, 0), z_dir=(0, 0, -1))) as redondeo2_piece_4:
        with BuildLine():
            CenterArc((4.170075975, -9.818712805), REDONDEO2_R, 100.92646016, 32.461744967)
            Line((-2.699303266, -2.551551815), (-2.83669085, -2.406208596))
            Line((-2.83669085, -2.406208596), (-0.137387585, 0.14534322))
            Line((-0.137387585, 0.14534322), (0.037909782, 0.196374256))
            ThreePointArc((0.037909782, 0.196374256), (1.137293448, 0.091227683), (2.236677114, 0.196374256))
            Line((2.236677114, 0.196374256), (2.274586895, 0))
        make_face()
    extrude(amount=12)

    # Redondeo3
    redondeo3_edges = [part.edges().sort_by_distance(p)[0] for p in [
        (-33.624334392, -13.330167568, 6),
        (-38.083590411, -9.830167568, 6),
    ]]
    fillet(redondeo3_edges, radius=REDONDEO3_R)

    # Croquis25 → Saliente-Extruir13 (add)
    with SkipClean():  # the faces are left unmerged after this step: merging them gives an invalid solid
        with BuildSketch(Plane.XY.offset(6)):
            with Locations((42.587704831, -13.680805733)):
                Circle(CROQUIS25_R)
        extrude(amount=SALIENTE_EXTRUIR13_DEPTH)


solid = part.part
